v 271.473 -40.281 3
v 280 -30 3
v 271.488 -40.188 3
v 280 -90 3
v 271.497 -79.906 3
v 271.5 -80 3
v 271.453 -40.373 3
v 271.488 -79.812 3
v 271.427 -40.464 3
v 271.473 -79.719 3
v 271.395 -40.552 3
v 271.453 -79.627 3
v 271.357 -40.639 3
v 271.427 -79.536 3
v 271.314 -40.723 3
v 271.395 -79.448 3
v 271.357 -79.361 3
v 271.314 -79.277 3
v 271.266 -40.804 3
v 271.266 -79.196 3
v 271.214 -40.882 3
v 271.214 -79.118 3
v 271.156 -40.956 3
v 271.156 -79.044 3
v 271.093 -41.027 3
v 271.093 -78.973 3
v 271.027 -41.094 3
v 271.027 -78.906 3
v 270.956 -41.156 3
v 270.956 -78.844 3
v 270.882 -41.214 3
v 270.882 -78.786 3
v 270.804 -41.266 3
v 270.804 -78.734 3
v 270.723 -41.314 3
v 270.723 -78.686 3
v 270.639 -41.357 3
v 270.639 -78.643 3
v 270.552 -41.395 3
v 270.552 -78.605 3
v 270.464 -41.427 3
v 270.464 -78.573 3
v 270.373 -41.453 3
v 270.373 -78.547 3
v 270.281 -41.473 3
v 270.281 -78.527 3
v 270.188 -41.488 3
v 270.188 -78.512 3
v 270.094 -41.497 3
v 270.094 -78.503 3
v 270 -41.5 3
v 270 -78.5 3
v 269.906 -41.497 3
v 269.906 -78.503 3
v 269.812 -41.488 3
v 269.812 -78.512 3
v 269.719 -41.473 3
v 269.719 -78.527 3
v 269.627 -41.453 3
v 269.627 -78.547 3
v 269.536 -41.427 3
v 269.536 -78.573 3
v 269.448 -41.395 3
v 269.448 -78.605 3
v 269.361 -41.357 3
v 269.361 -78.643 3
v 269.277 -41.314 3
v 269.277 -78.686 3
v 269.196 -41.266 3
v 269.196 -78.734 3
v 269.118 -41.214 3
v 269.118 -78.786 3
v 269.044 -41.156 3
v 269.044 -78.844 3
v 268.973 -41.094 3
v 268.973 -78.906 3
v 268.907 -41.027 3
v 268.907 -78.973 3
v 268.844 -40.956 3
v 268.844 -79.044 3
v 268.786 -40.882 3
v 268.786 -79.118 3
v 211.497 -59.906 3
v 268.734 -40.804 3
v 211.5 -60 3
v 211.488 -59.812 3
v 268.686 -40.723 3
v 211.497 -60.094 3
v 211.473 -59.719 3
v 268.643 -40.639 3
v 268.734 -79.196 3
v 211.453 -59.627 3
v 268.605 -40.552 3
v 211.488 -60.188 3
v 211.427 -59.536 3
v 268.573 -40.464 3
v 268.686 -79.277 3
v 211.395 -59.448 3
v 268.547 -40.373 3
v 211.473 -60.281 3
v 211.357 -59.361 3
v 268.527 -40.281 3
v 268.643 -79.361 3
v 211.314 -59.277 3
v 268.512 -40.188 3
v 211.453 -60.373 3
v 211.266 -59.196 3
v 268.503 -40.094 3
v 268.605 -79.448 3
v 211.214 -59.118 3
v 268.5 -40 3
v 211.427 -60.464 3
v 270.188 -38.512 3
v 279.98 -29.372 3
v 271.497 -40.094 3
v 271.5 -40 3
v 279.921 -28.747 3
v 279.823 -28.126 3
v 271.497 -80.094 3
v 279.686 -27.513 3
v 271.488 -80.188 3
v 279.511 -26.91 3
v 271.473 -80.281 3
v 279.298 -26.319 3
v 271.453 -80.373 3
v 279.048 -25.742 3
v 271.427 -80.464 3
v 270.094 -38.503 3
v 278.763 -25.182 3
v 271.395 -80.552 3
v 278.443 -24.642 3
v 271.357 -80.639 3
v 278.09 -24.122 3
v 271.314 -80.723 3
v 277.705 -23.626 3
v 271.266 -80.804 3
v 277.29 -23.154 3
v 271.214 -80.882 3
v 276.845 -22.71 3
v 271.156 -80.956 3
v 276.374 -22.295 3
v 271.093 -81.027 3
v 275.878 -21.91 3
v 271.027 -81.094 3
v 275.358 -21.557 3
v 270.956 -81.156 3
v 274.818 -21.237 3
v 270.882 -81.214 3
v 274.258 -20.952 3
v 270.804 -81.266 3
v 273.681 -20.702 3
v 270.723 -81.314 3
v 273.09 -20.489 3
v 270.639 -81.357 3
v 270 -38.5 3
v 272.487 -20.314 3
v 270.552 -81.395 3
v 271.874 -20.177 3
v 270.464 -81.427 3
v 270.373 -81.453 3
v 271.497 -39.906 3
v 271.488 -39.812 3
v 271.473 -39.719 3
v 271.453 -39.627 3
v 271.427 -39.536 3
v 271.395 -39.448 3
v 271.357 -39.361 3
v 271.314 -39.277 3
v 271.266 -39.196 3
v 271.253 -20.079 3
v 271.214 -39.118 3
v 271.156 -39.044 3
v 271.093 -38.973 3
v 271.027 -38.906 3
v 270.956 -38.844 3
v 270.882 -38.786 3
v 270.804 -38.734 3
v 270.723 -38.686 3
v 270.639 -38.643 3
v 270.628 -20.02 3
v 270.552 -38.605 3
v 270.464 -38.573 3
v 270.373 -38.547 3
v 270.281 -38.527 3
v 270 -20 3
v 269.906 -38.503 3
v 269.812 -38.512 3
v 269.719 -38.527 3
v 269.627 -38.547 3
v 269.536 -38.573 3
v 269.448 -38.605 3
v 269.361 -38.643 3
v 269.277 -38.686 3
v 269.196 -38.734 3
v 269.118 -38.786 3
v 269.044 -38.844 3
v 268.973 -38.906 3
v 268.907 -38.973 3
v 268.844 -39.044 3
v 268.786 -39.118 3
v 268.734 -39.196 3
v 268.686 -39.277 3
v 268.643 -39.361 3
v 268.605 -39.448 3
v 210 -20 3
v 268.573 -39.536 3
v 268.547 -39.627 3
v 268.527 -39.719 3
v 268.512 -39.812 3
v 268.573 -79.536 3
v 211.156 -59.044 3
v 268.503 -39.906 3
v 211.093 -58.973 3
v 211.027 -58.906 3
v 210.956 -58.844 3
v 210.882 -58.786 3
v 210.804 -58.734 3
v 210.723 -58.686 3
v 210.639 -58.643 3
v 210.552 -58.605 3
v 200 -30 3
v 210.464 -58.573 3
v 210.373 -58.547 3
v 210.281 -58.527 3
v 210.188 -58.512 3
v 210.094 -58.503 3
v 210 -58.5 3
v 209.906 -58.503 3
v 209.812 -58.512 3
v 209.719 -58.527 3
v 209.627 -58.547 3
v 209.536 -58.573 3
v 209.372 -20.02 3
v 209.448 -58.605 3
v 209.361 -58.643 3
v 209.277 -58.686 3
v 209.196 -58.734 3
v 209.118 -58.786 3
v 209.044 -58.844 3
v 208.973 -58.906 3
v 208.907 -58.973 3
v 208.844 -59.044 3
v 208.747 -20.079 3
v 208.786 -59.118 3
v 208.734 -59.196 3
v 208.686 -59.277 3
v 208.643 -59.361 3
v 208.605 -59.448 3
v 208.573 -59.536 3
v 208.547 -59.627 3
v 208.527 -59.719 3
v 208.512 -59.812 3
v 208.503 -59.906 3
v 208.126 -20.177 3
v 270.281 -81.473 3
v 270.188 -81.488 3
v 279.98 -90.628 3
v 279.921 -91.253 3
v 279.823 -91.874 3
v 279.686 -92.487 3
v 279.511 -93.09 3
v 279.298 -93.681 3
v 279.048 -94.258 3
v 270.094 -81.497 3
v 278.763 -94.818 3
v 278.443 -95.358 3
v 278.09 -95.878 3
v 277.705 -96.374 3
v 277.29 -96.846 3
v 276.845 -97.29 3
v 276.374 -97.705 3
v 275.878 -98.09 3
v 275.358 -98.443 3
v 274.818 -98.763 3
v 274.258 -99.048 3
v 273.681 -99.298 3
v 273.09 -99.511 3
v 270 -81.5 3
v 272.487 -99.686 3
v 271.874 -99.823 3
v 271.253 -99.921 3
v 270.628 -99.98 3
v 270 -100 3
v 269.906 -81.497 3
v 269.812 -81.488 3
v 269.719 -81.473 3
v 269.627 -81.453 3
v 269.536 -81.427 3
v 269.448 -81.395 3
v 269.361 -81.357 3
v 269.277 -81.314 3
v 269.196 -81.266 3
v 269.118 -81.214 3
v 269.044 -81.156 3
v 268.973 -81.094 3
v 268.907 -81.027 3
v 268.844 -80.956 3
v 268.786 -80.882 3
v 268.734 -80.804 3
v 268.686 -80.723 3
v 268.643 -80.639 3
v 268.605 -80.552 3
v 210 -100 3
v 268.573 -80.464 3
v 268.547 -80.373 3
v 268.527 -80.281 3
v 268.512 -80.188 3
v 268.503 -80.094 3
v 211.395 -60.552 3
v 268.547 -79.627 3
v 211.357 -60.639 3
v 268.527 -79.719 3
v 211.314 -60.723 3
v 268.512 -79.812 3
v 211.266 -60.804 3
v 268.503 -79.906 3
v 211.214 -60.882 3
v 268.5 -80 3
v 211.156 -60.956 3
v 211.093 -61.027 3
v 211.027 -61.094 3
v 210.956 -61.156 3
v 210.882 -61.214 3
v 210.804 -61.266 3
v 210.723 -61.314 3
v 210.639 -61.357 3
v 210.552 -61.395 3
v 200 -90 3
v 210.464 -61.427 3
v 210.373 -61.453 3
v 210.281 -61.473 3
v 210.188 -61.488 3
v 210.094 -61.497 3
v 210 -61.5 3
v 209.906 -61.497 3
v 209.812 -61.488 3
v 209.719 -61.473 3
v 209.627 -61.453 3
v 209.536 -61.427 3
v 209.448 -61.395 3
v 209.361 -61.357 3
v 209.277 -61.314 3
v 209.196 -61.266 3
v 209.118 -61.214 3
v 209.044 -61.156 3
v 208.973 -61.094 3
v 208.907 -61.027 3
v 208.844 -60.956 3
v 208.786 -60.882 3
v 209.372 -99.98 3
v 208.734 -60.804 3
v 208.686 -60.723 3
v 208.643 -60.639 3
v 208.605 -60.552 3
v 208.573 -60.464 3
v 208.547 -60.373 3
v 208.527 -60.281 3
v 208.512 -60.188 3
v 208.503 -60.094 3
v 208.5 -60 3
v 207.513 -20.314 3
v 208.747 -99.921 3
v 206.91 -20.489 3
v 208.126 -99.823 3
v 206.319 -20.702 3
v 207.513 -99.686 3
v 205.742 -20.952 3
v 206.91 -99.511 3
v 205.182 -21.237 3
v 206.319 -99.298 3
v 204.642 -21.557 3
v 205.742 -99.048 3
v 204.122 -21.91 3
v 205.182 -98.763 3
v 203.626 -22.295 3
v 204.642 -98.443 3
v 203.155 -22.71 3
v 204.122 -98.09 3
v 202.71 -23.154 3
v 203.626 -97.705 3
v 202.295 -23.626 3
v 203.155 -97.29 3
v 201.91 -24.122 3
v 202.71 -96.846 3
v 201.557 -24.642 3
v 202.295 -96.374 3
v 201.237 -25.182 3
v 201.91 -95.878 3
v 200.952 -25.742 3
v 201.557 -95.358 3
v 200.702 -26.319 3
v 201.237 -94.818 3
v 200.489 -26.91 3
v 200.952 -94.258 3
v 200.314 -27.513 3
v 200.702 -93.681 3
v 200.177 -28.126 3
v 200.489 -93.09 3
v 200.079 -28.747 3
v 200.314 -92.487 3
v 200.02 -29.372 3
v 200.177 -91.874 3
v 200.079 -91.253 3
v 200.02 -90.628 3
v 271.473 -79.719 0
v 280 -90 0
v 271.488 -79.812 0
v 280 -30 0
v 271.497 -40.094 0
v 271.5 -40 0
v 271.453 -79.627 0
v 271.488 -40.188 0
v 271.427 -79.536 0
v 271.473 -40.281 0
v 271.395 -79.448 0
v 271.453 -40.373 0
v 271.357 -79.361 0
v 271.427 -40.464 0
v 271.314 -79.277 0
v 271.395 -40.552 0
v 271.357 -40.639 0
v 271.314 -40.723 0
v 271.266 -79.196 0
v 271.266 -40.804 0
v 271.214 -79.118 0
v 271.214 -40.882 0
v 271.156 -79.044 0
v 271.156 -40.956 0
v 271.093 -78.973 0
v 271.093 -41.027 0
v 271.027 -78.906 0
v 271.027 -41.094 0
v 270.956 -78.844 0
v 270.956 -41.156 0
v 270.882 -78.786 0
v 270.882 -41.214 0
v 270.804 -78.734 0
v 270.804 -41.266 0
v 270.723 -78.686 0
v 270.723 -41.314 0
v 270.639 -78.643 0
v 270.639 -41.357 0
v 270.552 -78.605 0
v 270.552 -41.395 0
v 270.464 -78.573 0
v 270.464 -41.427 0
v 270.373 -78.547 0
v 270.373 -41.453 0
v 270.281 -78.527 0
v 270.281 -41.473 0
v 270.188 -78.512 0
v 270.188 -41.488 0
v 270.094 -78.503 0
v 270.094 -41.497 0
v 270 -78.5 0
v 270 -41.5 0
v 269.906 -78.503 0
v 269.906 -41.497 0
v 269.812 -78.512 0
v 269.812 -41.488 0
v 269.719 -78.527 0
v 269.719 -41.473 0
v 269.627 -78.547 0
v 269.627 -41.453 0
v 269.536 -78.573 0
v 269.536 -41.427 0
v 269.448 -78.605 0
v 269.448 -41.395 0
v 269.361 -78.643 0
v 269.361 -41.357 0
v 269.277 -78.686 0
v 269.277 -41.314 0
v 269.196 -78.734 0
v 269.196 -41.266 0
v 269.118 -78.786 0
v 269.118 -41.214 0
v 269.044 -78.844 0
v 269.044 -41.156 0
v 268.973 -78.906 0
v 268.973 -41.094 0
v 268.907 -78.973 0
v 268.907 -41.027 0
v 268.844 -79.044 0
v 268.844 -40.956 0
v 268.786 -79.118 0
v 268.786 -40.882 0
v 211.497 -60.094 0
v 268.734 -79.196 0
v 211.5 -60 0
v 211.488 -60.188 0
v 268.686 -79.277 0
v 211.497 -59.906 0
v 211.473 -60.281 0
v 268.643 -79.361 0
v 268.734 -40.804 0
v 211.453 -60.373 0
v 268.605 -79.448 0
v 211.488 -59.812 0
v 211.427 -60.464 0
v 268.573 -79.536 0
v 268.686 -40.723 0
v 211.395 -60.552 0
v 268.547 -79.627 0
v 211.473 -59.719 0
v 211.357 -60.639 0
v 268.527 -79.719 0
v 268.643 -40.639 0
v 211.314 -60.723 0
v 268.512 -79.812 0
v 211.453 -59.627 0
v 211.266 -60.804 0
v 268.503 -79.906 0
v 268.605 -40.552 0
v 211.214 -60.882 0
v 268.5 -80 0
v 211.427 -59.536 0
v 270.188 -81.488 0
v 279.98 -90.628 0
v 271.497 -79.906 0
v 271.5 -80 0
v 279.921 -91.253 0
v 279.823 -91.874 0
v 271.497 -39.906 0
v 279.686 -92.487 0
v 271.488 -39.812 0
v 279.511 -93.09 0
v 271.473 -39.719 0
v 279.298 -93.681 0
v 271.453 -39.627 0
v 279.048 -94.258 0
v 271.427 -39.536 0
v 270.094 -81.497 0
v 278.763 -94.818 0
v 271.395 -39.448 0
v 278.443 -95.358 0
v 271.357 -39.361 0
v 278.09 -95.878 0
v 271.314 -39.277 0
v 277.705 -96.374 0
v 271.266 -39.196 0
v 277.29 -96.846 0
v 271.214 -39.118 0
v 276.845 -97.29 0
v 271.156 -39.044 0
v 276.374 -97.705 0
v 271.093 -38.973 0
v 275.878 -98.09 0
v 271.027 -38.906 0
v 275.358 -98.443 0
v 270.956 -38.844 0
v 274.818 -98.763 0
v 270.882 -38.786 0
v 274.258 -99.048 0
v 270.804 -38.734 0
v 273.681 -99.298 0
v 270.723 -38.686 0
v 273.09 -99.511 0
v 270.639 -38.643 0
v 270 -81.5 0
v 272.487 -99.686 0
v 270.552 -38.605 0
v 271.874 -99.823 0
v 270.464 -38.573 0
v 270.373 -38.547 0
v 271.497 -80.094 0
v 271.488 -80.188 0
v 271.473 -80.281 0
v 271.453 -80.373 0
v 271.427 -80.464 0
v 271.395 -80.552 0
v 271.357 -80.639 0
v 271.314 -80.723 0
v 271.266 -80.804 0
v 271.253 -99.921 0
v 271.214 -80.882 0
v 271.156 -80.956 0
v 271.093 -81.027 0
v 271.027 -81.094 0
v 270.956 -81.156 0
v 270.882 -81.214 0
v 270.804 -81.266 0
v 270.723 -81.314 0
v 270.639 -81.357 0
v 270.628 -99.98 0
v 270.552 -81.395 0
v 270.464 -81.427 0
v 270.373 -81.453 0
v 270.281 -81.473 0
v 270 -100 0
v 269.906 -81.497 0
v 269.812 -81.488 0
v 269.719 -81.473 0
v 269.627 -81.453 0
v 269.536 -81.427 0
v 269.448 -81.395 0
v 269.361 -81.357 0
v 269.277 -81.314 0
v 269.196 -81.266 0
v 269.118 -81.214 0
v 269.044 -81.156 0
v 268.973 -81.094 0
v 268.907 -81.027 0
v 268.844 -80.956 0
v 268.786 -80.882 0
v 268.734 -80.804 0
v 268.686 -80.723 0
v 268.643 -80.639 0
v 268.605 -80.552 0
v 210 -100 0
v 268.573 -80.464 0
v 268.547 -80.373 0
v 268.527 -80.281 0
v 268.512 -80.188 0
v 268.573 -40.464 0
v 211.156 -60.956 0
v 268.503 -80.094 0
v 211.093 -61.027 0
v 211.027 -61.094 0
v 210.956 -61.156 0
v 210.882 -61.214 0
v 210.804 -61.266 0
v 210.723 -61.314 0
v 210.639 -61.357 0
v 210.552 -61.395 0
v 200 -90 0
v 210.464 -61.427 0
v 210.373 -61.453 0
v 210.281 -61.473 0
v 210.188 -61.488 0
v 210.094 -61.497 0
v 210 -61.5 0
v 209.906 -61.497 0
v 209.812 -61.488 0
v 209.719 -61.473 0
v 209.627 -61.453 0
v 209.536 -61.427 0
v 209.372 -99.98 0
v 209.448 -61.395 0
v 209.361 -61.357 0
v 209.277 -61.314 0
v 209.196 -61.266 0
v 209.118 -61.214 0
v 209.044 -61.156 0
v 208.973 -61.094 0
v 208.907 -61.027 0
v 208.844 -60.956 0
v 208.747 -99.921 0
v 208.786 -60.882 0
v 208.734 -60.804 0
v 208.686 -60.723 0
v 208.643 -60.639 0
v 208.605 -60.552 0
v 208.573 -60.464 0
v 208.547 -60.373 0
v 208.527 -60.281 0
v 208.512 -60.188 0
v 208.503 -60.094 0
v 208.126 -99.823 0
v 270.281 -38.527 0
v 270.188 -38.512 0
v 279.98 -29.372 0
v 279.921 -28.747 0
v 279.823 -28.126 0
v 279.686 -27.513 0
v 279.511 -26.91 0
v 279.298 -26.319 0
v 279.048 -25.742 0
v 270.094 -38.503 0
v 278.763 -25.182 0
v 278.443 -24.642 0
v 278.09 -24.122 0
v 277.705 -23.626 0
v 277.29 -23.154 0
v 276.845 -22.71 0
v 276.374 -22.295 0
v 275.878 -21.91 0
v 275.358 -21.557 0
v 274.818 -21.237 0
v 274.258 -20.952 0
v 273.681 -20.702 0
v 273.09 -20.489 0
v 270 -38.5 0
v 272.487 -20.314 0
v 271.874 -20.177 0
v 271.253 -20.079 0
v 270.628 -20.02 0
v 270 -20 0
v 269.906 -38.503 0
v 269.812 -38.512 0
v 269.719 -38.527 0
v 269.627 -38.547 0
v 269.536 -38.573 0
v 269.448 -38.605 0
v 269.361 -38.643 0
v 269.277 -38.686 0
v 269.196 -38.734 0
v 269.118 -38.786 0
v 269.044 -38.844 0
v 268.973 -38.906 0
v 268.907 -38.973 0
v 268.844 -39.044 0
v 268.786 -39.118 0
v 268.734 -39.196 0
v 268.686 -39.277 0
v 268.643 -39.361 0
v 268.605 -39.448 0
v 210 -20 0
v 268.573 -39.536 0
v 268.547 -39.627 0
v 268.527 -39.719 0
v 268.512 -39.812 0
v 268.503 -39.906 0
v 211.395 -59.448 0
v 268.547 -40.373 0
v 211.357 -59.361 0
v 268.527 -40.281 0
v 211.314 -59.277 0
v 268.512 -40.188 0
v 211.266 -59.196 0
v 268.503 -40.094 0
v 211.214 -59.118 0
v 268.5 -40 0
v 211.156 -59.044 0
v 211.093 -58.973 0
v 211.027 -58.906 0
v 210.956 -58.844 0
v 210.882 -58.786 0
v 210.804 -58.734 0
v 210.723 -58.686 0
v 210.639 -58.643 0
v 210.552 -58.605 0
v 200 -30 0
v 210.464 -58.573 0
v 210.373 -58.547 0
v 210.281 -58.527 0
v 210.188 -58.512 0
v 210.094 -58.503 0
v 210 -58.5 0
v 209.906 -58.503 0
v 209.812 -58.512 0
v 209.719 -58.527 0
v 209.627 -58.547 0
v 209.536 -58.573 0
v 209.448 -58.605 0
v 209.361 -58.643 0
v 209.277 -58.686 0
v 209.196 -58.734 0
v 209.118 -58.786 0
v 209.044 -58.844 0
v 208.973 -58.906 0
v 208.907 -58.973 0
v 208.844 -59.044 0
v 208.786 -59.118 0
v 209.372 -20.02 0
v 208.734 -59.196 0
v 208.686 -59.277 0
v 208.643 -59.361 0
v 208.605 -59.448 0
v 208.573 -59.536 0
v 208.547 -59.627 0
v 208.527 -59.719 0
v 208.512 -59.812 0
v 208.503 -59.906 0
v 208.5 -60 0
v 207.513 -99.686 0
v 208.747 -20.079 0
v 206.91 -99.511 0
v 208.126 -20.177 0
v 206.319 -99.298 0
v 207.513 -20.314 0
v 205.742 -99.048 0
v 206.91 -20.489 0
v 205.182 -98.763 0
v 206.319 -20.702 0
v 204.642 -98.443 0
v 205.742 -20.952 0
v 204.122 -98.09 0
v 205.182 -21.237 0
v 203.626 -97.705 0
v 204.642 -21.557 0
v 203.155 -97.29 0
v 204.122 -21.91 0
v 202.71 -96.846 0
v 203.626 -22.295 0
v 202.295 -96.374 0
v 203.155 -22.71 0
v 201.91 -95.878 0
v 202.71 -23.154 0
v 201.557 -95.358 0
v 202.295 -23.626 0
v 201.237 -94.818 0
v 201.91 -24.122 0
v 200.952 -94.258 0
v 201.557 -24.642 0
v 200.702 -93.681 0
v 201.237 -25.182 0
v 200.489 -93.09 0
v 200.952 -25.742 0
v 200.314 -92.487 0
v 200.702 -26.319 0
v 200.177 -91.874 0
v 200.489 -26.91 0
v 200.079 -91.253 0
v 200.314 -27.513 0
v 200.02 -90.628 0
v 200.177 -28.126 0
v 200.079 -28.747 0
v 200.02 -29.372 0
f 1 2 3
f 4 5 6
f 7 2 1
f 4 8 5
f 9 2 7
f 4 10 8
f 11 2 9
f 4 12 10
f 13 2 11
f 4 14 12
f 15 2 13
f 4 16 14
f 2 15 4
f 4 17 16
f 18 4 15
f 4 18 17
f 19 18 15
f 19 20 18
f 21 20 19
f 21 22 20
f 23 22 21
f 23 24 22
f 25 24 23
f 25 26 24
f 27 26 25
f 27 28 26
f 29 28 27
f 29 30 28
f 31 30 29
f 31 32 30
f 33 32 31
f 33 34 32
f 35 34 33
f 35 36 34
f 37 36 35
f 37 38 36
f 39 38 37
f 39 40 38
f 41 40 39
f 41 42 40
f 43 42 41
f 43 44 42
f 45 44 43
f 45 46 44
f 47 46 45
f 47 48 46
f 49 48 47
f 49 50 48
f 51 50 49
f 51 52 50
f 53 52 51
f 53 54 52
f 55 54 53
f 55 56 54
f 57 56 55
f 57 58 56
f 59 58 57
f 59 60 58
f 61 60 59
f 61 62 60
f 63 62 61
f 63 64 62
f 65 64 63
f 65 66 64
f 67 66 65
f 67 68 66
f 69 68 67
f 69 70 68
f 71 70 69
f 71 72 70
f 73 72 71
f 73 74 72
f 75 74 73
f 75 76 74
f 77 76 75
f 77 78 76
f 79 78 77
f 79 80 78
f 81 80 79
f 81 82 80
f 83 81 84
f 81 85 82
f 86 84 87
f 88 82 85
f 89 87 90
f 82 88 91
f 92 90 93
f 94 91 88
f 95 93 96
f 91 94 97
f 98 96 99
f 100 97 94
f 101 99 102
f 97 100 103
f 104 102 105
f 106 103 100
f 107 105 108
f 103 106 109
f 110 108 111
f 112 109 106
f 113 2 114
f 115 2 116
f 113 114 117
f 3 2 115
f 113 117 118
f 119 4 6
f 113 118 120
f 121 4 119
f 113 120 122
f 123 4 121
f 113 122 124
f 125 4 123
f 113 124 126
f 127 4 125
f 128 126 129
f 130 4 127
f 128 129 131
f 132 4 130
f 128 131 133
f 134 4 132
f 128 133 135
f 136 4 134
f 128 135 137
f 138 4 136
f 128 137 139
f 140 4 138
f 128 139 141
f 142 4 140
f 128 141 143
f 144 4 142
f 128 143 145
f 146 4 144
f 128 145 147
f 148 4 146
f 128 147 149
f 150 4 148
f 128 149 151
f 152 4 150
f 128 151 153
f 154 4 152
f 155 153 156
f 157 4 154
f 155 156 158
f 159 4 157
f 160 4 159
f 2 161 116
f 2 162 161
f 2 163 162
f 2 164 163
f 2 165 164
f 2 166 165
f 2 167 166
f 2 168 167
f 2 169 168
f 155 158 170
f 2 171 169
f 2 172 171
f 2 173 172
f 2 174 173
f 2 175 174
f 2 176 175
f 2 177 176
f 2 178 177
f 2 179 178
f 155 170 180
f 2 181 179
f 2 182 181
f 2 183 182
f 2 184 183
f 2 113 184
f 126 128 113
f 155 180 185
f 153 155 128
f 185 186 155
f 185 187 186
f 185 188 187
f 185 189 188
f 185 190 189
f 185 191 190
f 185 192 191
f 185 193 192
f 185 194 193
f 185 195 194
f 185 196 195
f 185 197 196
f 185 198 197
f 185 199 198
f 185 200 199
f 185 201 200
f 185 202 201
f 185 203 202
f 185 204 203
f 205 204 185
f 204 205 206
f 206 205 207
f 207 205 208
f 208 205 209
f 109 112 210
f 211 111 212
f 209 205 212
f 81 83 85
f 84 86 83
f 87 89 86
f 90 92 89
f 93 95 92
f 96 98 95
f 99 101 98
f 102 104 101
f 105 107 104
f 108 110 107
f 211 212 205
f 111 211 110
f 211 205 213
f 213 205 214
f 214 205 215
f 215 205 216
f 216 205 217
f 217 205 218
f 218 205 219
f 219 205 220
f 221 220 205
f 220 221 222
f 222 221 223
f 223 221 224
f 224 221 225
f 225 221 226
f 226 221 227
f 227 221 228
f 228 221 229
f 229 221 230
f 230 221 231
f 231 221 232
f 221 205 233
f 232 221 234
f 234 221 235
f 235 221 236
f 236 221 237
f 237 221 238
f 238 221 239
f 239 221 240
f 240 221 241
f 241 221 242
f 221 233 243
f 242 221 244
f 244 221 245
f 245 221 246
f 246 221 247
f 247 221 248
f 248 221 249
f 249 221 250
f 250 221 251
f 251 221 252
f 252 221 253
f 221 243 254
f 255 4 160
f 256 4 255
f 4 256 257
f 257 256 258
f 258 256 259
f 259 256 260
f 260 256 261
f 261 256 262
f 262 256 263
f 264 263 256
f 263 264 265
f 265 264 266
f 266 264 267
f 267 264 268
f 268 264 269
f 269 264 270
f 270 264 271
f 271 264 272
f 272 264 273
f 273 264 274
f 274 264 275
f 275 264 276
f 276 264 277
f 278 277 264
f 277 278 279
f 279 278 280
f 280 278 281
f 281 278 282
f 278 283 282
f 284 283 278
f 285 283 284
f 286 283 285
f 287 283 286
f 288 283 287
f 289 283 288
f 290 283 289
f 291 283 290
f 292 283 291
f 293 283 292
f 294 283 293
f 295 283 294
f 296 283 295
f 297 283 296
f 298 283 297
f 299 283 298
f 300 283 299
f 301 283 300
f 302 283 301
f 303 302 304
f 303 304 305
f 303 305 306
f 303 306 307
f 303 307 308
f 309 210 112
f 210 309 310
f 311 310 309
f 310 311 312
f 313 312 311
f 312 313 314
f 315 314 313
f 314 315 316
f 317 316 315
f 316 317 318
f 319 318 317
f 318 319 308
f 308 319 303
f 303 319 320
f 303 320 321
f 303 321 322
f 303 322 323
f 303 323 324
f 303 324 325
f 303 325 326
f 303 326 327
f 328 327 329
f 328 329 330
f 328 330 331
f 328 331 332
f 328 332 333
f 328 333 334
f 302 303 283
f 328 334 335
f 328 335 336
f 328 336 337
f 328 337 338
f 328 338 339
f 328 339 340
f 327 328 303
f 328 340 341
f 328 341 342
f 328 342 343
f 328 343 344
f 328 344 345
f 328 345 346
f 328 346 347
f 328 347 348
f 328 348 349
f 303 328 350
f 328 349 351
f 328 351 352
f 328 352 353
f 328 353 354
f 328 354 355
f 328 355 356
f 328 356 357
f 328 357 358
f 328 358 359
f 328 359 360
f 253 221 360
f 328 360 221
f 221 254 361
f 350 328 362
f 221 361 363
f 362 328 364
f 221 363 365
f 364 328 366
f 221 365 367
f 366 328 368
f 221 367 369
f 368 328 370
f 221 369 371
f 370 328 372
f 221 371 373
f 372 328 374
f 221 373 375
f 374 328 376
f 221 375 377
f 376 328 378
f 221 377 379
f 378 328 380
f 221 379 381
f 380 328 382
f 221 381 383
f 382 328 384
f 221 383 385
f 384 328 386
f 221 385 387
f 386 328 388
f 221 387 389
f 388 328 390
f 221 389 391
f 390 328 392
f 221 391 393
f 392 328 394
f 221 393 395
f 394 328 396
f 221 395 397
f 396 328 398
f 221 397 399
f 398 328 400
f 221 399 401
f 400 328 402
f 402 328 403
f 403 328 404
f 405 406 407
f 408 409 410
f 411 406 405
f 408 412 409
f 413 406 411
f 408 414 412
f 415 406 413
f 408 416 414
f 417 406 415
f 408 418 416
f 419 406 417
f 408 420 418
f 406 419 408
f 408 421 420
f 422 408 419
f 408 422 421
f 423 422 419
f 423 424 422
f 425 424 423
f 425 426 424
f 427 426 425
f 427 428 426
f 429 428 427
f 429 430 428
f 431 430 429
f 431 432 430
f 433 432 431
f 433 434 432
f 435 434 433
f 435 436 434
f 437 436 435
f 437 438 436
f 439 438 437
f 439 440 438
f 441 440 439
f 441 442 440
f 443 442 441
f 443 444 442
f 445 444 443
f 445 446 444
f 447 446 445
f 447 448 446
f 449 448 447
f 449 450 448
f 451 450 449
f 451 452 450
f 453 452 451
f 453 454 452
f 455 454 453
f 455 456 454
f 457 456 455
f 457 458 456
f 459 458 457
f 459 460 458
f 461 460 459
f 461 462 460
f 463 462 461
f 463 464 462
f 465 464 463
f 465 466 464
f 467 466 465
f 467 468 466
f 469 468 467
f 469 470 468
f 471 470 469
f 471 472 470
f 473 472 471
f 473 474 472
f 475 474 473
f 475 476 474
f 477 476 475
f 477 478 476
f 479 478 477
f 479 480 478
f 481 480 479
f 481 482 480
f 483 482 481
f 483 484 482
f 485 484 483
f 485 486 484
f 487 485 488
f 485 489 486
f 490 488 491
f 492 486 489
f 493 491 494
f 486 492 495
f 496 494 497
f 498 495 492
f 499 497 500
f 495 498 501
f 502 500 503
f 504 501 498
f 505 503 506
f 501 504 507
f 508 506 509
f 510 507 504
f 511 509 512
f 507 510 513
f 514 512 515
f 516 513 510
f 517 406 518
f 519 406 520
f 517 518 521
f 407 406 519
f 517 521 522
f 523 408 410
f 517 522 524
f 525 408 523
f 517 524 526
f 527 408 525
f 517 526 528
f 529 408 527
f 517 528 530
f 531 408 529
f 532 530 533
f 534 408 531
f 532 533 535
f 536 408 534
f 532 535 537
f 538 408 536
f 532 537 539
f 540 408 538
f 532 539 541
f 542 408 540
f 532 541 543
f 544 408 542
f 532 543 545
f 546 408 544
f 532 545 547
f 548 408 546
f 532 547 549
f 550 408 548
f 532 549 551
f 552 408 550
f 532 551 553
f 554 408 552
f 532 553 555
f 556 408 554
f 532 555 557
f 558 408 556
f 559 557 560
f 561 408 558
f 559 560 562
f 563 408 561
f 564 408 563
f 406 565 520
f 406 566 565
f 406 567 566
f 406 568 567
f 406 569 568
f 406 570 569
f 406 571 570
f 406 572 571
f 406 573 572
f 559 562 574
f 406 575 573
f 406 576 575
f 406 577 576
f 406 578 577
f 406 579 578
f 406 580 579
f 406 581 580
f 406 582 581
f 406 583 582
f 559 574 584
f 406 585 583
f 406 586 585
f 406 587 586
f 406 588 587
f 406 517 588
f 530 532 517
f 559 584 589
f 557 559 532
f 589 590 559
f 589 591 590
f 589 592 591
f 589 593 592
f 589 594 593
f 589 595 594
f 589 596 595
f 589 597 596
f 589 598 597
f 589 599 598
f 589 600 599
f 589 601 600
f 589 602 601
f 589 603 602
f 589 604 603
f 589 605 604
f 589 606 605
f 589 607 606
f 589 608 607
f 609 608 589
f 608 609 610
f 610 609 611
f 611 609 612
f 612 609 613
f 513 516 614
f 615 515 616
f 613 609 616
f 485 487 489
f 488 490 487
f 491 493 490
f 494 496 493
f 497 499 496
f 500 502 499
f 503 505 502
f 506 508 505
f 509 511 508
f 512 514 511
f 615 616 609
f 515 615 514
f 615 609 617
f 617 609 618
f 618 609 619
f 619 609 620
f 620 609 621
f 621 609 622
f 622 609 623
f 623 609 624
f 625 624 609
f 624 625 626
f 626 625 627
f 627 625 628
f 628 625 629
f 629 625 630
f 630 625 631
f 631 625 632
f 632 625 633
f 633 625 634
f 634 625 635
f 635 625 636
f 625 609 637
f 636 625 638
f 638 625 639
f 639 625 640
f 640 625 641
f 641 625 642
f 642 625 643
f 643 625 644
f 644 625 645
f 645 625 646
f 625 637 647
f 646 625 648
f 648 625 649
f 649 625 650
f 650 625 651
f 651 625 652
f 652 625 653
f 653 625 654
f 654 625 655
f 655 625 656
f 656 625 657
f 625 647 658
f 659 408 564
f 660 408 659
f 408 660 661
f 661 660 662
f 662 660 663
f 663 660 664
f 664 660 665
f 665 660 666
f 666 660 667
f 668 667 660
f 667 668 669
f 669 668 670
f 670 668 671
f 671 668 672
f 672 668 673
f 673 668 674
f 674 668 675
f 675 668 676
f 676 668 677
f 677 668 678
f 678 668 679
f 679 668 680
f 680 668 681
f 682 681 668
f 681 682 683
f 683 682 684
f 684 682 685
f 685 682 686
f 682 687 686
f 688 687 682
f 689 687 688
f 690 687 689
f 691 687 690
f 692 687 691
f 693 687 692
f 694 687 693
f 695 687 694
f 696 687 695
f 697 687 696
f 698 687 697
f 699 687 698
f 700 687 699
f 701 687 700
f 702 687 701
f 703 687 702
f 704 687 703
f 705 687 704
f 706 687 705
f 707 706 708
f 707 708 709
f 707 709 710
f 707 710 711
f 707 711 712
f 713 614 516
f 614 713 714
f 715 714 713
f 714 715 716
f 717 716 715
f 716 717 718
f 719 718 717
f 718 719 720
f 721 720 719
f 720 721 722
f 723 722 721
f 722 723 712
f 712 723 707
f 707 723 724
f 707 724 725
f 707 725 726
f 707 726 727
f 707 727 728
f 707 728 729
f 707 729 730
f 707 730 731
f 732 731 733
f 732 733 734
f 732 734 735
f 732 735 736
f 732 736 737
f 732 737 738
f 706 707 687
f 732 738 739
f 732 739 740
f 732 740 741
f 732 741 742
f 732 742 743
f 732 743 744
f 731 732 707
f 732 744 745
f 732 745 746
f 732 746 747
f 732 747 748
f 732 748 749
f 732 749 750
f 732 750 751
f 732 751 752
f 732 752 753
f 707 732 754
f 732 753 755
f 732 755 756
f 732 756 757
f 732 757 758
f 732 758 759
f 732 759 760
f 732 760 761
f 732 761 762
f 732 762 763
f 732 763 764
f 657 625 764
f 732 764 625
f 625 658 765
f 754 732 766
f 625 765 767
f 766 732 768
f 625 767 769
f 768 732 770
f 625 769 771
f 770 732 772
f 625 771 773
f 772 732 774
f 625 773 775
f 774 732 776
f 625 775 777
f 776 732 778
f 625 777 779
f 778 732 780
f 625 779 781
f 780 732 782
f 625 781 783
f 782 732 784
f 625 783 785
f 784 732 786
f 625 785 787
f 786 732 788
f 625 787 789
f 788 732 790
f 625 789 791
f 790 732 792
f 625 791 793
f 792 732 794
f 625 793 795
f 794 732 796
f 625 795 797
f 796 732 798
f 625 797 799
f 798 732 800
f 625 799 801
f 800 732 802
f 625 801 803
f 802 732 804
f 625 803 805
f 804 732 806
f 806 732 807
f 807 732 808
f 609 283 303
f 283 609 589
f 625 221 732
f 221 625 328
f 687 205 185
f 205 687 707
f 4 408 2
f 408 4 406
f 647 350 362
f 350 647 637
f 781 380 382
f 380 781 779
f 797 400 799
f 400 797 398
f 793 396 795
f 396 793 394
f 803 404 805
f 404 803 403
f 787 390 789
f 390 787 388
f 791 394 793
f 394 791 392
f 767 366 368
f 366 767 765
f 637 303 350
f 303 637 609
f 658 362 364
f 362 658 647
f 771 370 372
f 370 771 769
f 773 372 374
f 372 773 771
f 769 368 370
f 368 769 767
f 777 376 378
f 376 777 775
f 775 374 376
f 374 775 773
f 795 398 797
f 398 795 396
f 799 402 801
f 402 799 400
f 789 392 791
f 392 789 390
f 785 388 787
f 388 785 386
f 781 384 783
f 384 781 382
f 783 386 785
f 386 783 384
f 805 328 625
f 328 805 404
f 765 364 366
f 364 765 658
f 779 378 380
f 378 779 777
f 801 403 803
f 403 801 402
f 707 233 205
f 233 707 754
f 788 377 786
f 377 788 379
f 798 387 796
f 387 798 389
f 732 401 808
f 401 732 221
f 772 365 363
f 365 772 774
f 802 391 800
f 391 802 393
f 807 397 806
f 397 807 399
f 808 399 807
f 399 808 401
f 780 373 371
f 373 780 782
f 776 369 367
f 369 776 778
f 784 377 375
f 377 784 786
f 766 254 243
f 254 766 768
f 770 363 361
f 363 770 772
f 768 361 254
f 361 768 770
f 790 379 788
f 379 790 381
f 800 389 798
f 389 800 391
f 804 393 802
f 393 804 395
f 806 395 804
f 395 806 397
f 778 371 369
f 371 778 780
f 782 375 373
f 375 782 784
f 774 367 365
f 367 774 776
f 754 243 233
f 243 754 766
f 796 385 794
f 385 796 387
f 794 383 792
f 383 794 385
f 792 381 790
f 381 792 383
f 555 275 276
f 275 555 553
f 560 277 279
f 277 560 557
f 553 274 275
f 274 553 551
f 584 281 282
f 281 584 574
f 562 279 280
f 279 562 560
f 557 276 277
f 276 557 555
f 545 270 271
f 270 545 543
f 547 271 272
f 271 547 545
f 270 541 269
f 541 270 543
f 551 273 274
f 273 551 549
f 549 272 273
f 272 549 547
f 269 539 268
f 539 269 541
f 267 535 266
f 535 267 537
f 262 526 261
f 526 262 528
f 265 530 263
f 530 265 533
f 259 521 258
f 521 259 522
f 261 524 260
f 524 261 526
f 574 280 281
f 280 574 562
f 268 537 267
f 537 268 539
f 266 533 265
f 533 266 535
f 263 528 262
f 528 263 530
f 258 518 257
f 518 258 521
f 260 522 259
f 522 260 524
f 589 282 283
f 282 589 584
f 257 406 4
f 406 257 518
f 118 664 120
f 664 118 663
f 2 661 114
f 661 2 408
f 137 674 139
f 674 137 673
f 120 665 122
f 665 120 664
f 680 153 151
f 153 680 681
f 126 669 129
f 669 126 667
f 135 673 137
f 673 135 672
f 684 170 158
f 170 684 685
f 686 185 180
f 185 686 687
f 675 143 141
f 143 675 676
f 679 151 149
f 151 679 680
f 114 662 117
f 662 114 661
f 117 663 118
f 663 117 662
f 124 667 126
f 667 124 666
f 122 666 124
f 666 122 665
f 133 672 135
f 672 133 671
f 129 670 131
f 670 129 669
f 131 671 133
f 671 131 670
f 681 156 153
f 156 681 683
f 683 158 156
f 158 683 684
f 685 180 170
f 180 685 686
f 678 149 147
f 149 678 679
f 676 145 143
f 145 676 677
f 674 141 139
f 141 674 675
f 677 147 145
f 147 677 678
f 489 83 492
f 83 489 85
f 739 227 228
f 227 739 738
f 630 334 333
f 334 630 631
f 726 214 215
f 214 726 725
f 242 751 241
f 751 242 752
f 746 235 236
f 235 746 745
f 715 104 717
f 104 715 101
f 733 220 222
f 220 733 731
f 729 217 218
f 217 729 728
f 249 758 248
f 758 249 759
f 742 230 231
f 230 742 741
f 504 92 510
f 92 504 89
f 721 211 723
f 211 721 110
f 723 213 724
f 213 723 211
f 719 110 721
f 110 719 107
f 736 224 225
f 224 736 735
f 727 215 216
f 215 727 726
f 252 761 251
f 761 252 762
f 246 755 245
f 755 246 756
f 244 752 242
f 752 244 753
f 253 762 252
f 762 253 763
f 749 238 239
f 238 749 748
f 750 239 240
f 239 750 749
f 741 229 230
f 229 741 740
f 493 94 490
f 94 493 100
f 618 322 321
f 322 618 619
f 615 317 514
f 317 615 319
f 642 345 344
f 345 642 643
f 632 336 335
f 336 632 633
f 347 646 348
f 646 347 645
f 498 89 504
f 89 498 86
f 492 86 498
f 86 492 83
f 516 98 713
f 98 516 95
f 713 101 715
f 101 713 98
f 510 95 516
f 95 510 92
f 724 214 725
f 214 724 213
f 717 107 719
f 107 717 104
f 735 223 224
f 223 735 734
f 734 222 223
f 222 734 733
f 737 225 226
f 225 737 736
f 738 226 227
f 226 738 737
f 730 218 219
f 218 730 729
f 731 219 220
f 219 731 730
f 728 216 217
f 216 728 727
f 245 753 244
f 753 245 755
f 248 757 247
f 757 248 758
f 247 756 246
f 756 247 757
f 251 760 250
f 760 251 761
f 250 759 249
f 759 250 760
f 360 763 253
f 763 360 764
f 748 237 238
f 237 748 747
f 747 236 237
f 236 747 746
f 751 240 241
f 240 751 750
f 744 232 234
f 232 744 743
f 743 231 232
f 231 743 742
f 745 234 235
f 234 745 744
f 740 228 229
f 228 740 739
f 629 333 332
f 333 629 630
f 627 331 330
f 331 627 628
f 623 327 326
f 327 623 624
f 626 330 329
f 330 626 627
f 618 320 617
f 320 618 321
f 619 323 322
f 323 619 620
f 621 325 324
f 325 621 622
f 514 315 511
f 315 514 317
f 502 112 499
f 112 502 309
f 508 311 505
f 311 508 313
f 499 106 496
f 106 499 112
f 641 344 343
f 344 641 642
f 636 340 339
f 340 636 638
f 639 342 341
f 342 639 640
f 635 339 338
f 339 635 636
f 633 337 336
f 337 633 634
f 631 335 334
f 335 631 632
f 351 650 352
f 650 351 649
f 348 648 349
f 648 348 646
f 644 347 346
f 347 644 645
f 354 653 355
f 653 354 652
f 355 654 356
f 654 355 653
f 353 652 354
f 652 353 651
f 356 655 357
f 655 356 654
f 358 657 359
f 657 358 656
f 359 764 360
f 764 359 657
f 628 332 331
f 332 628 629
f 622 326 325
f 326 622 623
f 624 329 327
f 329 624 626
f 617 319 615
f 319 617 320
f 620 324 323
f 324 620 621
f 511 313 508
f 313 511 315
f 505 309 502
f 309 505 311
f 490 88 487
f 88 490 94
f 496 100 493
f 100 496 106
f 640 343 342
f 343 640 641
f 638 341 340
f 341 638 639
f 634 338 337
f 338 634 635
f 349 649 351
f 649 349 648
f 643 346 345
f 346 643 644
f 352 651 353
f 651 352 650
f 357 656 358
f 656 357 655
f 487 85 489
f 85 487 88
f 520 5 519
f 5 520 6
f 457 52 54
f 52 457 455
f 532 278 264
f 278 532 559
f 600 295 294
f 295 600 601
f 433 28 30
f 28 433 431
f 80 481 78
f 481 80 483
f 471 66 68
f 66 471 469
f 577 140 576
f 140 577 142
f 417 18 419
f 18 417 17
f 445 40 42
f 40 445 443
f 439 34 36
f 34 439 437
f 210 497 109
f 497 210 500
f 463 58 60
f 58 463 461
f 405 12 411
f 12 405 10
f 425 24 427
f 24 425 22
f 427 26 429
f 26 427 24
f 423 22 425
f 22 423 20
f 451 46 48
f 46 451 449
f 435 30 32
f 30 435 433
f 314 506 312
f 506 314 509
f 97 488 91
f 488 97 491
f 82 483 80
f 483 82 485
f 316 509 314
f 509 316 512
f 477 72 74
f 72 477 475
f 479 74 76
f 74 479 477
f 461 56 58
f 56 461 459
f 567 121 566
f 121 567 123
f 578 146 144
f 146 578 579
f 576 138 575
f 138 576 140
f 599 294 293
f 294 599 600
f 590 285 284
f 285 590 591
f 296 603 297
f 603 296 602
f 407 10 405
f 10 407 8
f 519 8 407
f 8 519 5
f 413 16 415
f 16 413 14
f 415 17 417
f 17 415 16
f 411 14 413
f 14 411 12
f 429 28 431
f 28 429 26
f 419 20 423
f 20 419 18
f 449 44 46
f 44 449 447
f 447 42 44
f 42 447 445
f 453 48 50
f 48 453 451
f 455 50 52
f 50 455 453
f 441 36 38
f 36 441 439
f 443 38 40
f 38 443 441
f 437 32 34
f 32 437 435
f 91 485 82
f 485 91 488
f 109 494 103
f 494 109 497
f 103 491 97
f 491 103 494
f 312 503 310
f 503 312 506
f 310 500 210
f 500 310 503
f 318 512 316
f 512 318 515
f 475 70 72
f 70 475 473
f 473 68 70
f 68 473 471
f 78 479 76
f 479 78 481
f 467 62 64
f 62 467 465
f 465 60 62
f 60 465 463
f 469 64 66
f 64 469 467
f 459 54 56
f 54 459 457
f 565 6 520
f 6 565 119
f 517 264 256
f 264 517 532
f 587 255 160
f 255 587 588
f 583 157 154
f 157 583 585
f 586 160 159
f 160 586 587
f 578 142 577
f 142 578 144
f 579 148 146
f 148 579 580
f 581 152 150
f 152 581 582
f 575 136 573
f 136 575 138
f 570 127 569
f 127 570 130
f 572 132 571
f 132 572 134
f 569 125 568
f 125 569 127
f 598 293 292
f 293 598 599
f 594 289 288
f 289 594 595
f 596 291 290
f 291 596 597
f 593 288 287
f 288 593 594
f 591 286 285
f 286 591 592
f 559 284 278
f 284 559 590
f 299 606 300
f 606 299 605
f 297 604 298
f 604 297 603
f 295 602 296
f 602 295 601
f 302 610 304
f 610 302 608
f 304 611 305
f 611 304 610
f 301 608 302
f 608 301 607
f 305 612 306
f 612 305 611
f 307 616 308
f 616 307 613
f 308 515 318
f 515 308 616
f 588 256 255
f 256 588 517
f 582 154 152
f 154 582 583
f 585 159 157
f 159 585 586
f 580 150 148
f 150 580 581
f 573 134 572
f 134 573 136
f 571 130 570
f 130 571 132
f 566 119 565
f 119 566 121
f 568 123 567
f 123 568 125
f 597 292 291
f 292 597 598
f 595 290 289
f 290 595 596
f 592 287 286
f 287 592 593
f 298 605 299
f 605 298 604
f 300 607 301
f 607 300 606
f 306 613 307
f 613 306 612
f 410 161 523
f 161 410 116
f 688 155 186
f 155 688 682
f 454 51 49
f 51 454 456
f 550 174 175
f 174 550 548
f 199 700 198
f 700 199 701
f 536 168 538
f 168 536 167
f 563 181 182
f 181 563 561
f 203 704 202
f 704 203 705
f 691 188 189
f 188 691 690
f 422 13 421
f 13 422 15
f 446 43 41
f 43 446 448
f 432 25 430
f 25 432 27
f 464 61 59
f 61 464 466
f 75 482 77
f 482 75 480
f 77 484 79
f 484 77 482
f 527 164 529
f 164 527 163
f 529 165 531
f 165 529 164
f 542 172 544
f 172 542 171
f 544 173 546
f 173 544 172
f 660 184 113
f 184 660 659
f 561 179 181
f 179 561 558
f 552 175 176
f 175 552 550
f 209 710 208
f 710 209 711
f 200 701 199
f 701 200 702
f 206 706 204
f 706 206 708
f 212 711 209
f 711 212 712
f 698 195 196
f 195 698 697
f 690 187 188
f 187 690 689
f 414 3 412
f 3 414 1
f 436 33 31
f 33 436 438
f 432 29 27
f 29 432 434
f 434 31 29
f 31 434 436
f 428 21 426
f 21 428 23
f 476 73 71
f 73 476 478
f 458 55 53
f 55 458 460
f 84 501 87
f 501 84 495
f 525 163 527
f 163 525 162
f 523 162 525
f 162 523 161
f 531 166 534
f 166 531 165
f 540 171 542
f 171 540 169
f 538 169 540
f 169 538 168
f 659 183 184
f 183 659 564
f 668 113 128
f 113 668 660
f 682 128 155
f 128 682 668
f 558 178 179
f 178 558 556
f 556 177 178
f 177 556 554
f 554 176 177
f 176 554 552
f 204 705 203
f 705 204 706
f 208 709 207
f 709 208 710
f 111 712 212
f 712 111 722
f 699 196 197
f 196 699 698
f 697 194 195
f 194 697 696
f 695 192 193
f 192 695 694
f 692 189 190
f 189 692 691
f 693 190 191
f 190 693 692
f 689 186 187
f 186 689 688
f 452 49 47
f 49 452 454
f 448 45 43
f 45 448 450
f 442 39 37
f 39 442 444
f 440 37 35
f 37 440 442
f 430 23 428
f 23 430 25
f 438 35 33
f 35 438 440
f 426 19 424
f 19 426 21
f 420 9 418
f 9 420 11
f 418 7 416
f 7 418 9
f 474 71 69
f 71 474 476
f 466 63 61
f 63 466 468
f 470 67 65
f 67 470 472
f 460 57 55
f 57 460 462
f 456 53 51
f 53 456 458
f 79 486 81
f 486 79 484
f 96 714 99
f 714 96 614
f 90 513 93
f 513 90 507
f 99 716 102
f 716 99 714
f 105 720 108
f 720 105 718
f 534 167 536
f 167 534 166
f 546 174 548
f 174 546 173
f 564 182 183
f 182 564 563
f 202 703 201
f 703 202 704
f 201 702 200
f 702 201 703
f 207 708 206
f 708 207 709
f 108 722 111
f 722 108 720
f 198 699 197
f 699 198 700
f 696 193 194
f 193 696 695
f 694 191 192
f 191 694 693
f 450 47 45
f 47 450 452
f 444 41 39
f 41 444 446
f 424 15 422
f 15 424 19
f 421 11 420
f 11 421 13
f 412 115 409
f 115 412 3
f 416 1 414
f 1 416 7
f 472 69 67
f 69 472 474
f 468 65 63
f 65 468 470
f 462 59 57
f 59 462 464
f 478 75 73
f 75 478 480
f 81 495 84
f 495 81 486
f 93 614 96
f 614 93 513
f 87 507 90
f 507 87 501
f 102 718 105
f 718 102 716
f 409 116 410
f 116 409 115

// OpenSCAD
//bottom part
rotate([0, 0, 0])  translate([200, -100, 0]) 
difference() {
    union(){
        rotate([0, 0, 0])  translate([10, 10, 0]) cube([60,60,3]);
        rotate([0, 0, 0])  translate([10, 0, 0]) cube([60,10,3]);
        rotate([0, 0, 0])  translate([0, 10, 0]) cube([10,60,3]);
        rotate([0, 0, 0])  translate([10, 70, 0]) cube([60,10,3]);
        rotate([0, 0, 0])  translate([70, 10, 0]) cube([10,60,3]);
        rotate([0, 0, 0])  translate([10, 10, 0]) cylinder(3,10,10,$fn=100);
        rotate([0, 0, 0])  translate([10, 70, 0]) cylinder(3,10,10,$fn=100);
        rotate([0, 0, 0])  translate([70, 10, 0]) cylinder(3,10,10,$fn=100);
        rotate([0, 0, 0])  translate([70, 70, 0]) cylinder(3,10,10,$fn=100);
    }
    rotate([0, 0, 0])  translate([10, 40, -1]) cylinder(7,1.5,1.5,$fn=100);
    rotate([0, 0, 0])  translate([70, 20, -1]) cylinder(7,1.5,1.5,$fn=100);
    rotate([0, 0, 0])  translate([70, 60, -1]) cylinder(7,1.5,1.5,$fn=100);
}
